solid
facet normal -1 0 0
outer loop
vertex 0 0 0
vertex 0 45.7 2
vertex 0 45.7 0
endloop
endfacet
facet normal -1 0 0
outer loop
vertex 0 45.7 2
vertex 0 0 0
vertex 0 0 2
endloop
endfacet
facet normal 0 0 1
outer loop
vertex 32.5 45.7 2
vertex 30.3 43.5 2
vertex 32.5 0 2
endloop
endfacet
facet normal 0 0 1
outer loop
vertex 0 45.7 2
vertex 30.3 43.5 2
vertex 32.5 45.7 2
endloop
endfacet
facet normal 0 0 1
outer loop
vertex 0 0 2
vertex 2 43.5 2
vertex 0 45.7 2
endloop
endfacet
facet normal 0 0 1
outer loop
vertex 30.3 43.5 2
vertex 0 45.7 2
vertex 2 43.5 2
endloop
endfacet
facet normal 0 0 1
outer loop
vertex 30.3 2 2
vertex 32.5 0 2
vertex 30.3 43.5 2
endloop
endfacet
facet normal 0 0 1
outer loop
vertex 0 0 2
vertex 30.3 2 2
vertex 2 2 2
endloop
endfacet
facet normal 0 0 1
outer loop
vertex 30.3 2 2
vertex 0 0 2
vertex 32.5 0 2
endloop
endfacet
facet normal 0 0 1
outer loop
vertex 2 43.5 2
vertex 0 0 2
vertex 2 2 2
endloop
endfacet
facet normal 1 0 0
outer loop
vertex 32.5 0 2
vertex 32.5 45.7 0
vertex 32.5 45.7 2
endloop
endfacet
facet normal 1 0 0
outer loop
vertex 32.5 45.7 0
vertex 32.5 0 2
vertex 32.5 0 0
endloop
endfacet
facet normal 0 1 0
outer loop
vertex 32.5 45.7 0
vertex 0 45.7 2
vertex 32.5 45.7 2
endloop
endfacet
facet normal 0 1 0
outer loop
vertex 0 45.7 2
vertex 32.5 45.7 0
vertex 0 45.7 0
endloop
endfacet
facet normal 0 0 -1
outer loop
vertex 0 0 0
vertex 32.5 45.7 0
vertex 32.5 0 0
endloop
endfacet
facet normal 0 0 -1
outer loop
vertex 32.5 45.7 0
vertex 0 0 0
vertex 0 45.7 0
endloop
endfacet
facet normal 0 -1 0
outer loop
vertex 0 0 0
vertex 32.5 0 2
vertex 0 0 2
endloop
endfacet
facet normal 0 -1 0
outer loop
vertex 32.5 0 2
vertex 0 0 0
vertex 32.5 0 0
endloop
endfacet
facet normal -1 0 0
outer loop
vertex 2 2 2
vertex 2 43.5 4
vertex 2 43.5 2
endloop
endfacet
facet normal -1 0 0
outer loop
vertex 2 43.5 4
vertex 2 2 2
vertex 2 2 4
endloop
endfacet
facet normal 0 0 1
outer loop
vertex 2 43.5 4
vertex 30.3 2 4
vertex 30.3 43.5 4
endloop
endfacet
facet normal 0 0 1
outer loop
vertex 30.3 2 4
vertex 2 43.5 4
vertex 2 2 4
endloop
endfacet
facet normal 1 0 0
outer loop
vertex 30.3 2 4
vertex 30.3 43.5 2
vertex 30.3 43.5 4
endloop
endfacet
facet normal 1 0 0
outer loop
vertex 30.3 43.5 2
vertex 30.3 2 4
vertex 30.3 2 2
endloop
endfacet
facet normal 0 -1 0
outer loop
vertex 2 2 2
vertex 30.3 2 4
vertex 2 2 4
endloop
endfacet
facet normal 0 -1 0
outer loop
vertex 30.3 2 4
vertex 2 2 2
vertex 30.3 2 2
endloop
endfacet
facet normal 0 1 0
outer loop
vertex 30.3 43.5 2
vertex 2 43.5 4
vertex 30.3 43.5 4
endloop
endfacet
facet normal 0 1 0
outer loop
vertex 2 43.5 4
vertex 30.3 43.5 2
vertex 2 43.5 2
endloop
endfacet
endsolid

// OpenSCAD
a=16.50+2;
b=39.70+2;
c=10.00+2;
d=2;
e =13.05+2;
f = 2.85+2;

cube([a+2*d+10,b+2*d,2]);
translate([d,d,d])cube([a-0.2+10,b-0.2,2]);
